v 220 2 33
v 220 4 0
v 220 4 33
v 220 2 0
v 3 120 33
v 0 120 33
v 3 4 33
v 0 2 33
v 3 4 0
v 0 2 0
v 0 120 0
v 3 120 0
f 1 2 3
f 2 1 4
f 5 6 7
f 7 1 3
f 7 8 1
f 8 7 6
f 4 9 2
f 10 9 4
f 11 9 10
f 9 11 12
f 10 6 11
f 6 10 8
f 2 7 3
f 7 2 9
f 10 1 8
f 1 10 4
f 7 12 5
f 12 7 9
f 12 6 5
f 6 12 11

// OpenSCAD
// file: nut.scad
// 1.5^2 + y^2 = 3^2
// sqrt(3^2 - 1.5^2)
//       30
//    /   |
// 60  - 90
// cos(30) = x / 3
// x = 3 cos(30)
module hex(side_length=3) {
  points = [[0,0], [side_length, 0], [side_length / 2, side_length * cos(30)]];
  for (i=[0:1:5]) {
    rotate([0,0,i * 60]) polygon(points);
  }
}

module hex_nut(side_length=3, height=2) {
    linear_extrude(height=height) hex(side_length);
}

module square_nut(side_length=5, height=2) {
    cube([5,5,2]);
}
// file: smoothed_corner.scad
$fn=200;
module smoothed_corner(radius=5) {
  difference() {
    sphere(radius);
    union() {
      translate([0,-5,-5]) {
        cube([5,10,10]);
      }

      translate([-10,0,-5]) {
        cube([10, 10, 10]);
      }

      translate([-5,-5,0]) {
        cube([10,10,10]);
      }
    }

  }
}

smoothed_corner();
// file: hex_nut.scad
// 1.5^2 + y^2 = 3^2
// sqrt(3^2 - 1.5^2)
//       30
//    /   |
// 60  - 90
// cos(30) = x / 3
// x = 3 cos(30)
module hex(side_length=4) {
  points = [[0,0], [side_length, 0], [side_length / 2, side_length * cos(30)]];
  for (i=[0:1:5]) {
    rotate([0,0,i * 60]) polygon(points);
  }
}

module hex_nut(side_length=3, height=2) {
    linear_extrude(height=height) hex(side_length);

}
// file: screw_with_nut.scad
use <screw.scad>
use <nut.scad>

module screw_with_nut(hex_nut_height=2.5, screw_head_height=3, threaded_height=10, threaded_radius=1.5, screw_head_radius=3, hex_nut_side_length=3, square_nut_height=2, square_nut_side_length=5, nut_type="hex") {
  screw(screw_head_radius=screw_head_radius, screw_head_height=screw_head_height, threaded_radius=threaded_radius, threaded_height=threaded_height);

  if (nut_type == "hex") {
    translate([0,0, screw_head_height + threaded_height - hex_nut_height]) {
      hex_nut(side_length=hex_nut_side_length, height=hex_nut_height);
    }
  }

  else if (nut_type == "square"){
    translate([
        -square_nut_side_length / 2,
        -square_nut_side_length / 2,
        screw_head_height + threaded_height - square_nut_height
    ]) {
      square_nut(side_length=square_nut_side_length, height=square_nut_height);
    }
  }

}

screw_with_nut(nut_type="square");
// file: fan.scad
use <hex_nut.scad>

module fan(radius, depth, distance_to_middle_of_circle_x, distance_to_middle_of_circle_y, screw_radius) {
  linear_extrude(height=depth) circle(radius);
  translate([distance_to_middle_of_circle_x, distance_to_middle_of_circle_y, 0]) {
    linear_extrude(height=depth) circle(screw_radius);
  }

  translate([-distance_to_middle_of_circle_x, -distance_to_middle_of_circle_y, 0]) {
    linear_extrude(height=depth) circle(screw_radius);
  }

  translate([distance_to_middle_of_circle_x, -distance_to_middle_of_circle_y, 0]) {
    linear_extrude(height=depth) circle(screw_radius);
  }

  translate([-distance_to_middle_of_circle_x, distance_to_middle_of_circle_y, 0]) {
    linear_extrude(height=depth) circle(screw_radius);
  }

  // hex nut 1
  translate([distance_to_middle_of_circle_x, distance_to_middle_of_circle_y, depth - 2]) {
    hex_nut(4);
  }

  // hex nut 2
  translate([-distance_to_middle_of_circle_x, -distance_to_middle_of_circle_y, depth - 2]) {
    hex_nut(4);
  }

  // hex nut 3
  translate([distance_to_middle_of_circle_x, -distance_to_middle_of_circle_y, depth - 2]) {
    hex_nut(4);
  }

  // hex nut 4
  translate([-distance_to_middle_of_circle_x, distance_to_middle_of_circle_y, depth - 2]) {
    hex_nut(4);
  }
}

fan(radius=60, depth=5, distance_to_middle_of_circle_x=62/70 * 60, distance_to_middle_of_circle_y=62/70 * 60);
// file: filler.scad
module filler(num_rows, num_cols, back_x, depth, back_y, filter_x, filter_y, filter_z, top_z) {

  if (num_rows == 1 && num_cols == 1) {
    difference() {
      translate([depth, depth, top_z - filter_z]) {
        cube([back_x - depth * 2, back_y - depth * 2, filter_z]);
      }

      translate([back_x / 2 - filter_x / 2, back_y / 2 - filter_y / 2, top_z - filter_z]) {
        cube([filter_x, filter_y, filter_z]);
      }
    }
  }

  if (num_rows == 1 && num_cols > 1){
    translate([depth, filter_y + depth, top_z - filter_z]) {
      cube([back_x - 2 * depth, back_y - 2 * depth - filter_y, filter_z]);
    }
  }
}

// filler(1, 1, 151, 5, 151, 110, 116, 44, 54.4);
// file: louver.scad
use <screw.scad>
$fn = 90;
module louver(filter_x, x_offset, cylinder_radius, distance_between_cylinders, casing_cylinder_length, with_holes=false) {
  difference() {
    difference() {

      rotate([90,0,0]) {
        rotate([0, 90, 0]) {

          // cylinder that attaches the louver to some structure
          translate([0, 0, x_offset]) {
            cylinder(h=casing_cylinder_length, r=cylinder_radius);
          }

          // cylinder that is meant to be attached to the direction synchronizer
          translate([0, distance_between_cylinders, x_offset * 1.5]) {
            cylinder(h=x_offset * 1.5, r=cylinder_radius);
          }

          // triangle
          translate([0, 0, x_offset * 3]) {
            rotate([0,0,90])
              linear_extrude(height=filter_x - 2 * x_offset) polygon(points=[[0,-2.5],[20 + distance_between_cylinders,0],[0, 2.5]]);
          }
        }
      }

      // remove extra of triangle
      translate([6,-5,20]) {
        cube([casing_cylinder_length,100,100]);
      }
    }

    if (with_holes) {
      translate([6,0, 15]) {
        rotate([0,90,0]) screw(threaded_height=6);
      }
    }
  }
}

depth = 5;
filter_x = 110;
top_z = 60;


louver(filter_x=filter_x, x_offset=depth, cylinder_radius=3, distance_between_cylinders=15, casing_cylinder_length=filter_x + depth * 2);
// file: shoulder_strap_support_screws.scad
use <screw_with_nut.scad>
module shoulder_strap_support_screws(wideness=15) {
  // left hole
  translate([wideness,0,5]) {
    color([1, 0, 0]) rotate([-90,0,0]) screw_with_nut(threaded_height=8);
  }

  // right hole
  translate([-wideness,0,5]) {
    color([1, 0, 0]) rotate([-90,0,0]) screw_with_nut(threaded_height=8);
  }
}
// file: shoulder_strap_half_ring.scad
use <screw_with_nut.scad>
use <smoothed_cube.scad>
use <shoulder_strap_support_screws.scad>

$fn = 200;

module screwable() {
    smoothed_cube(
      x=13,
      y=5,
      z=10,

      radius_1=2,
      radius_2=2,
      edge_1_2_radius=2,
      edge_2_6_radius=2,
      edge_1_5_radius=2,
      edge_4_1_radius=2,
      edge_2_3_radius=2,
      edge_3_4_radius=2,
      edge_3_7_radius=2,
      edge_4_8_radius=2,
      radius_3=2,
      radius_4=2
      // edge_4_1_radius=2,
    );
}

module to_remove(r) {
  cylinder(h=10, r=r-4);
  translate([-8,0,0]) {
    cube([16, 100, 100]);
  }
  translate([-25,5,0]) {
    cube([50, 50, 50]);
  }
}


module half_ring_without_holes(r=25.4) {
  difference() {
    // translate([0,2,5]) {
      // rotate([180,0,0])
        // rotate_extrude(convexity = 10, angle=180)
        // translate([10, 0, 0])
        // circle(r = 2, $fn = 100);

    // }
    translate([0,1,2]) {
      cylinder(h=6, r=r);
    }
    to_remove(r);

  }

  // left side support
  translate([8,0,0]) {
    screwable();
  }

  // right side support
  translate([-8,0,10]) {
    rotate([0,180,0])
    screwable();
  }
}

module shoulder_strap_half_ring() {
  difference() {
    half_ring_without_holes(r=12);
    shoulder_strap_support_screws(wideness=16);
  }
}


shoulder_strap_half_ring();


// to_remove();
// file: smoothed_edge.scad
module smoothed_edge(radius=1.5, height=64) {
  difference() {
    difference() {
      color([1, 0, 0]) cylinder(h=height, r=radius);
      translate([-radius, 0, 0]) {
        color([0, 1, 0]) cube([radius * 2, radius, height]);
      }
    }

    translate([0, -radius, 0]) {
      color([0, 1, 0]) cube([radius, radius * 2, height]);
    }
  }
}
// file: c_clamp_m.scad
use <top_screws_with_nuts.scad>
use <smoothed_edge.scad>
use <smoothed_cube.scad>

depth = 5;
$fn = 100;

module c_clamp_m_screws_and_nuts() {
  top_screws_with_nuts();
  translate([22.5, 0, 0]) {
    top_screws_with_nuts();
  }
}

module remove_from_left_cylinder() {
  // bottom half
  translate([-2.5, 0, 0]) {
    color([0, 1, 0]) cube([5,5,64]);
  }

  // top right corner
  translate([0, -2.5, 0]) {
    color([0, 1, 0]) cube([2.5,2.5,64]);
  }
}

module remove_from_right_cylinder() {
  // bottom half
  translate([-2.5, 0, 0]) {
    color([0, 1, 0]) cube([5,5,64]);
  }

  // top right corner
  translate([-2.5, -2.5, 0]) {
    color([0, 1, 0]) cube([2.5,2.5,64]);
  }
}


module c_clamp_m_without_holes() {
  // base
  translate([0,0,0]) {
    color([0,0,1]) smoothed_cube(
        x=36,
        y=3,
        z=64,
        radius_1=3,
        radius_2=3,
        radius_3=3,
        radius_4=3,
        edge_1_2_radius=3,
        edge_2_3_radius=3,
        edge_3_4_radius=3,
        edge_4_1_radius=3
    );
  }

  // mid
  translate([14,-3,2]) {
    color([1,0,0]) cube([8, 4, 61]);
  }

  // top
  translate([11.5,-7.5,0]) {
    color([0, 1,0]) smoothed_cube(
        x=13,
        y=5,
        z=64,
        radius_1=5,
        radius_2=5,
        radius_3=5,
        radius_4=5,
        edge_1_2_radius=5,
        edge_2_3_radius=5,
        edge_3_4_radius=5,
        edge_4_1_radius=5
    );
  }

  // stopper
  translate([11.5,-3,0]) {
    color([0,1,0])
      smoothed_cube(
        x=13,
        y=3,
        z=5,
        edge_2_6_radius=5,
        edge_3_7_radius=5
      );
  }
}

module c_clamp_m() {
  difference() {
    c_clamp_m_without_holes();
    translate([150, 135, -4]) {
      rotate([0,0,180]) c_clamp_m_screws_and_nuts();
    }
  }

  // translate([3,3,0]) {
    // smoothed_edge(radius=3);
  // }
  // translate([33,3,0]) {
    // rotate([0,0,90]) smoothed_edge(radius=3);
  // }

}



c_clamp_m();

// translate([14,-10,0]) {
// file: top_screws_with_nuts.scad
use <screw_with_nut.scad>
module top_screws_with_nuts(fan_radius=60, depth=5, height=50) {
  // top hole 1
  translate([fan_radius * 2, fan_radius * 2 + depth + 1, 2 * depth]) {
    rotate([-90,0,0]) color([0,0,1]) screw_with_nut(threaded_height=6);
  }

  // top hole 2
  translate([fan_radius * 2, fan_radius * 2 + depth + 1, height + depth ]) {
    rotate([-90,0,0]) color([0,1,0]) screw_with_nut(threaded_height=6);
  }
}


top_screws_with_nuts();
// file: main_no_side_holes.scad
use <filler.scad>;
use <fan.scad>;
use <louver.scad>
use <louvers.scad>
use <smoothed_cube.scad>

$fn = 100;

module main_no_side_holes(
  depth=5,
  filter_x=110,
  filter_y=116,
  fan_radius=60,
  top_z=60,
  screw_radius=2.5,
  screw_radius_holder=2.5,
  louver_holder=false,
  num_fans = 1,
  num_rows=1,
  num_cols=2,
  side_offset=0,
  radius_3=0,
  radius_7=0,
  edge_1_2_radius=0,
  edge_2_3_radius=0,
  edge_3_7_radius=0,
  edge_6_7_radius=0,
  edge_7_8_radius=0
) {
  distance_to_middle_of_circle_x = 62 / 70 * fan_radius;
  distance_to_middle_of_circle_y = distance_to_middle_of_circle_x;
  // Take the number of filters (rows and columns) into account
  depth_multiplier = num_fans == 2 ? 4 : 2;

  larger_x = num_fans > num_cols ? num_fans : num_cols;
  larger_y = num_fans > num_rows ? num_fans : num_rows;
  multiplier = num_rows == 2 ? filter_x : fan_radius;
  multiplier_x = num_cols == 2 ? filter_x : fan_radius * 2;
  back_x = larger_x * multiplier_x + depth * depth_multiplier + 1;
  back_y =  2 * multiplier + depth * depth_multiplier + 1;

  if (!louver_holder) {
    if (num_fans == 1) {
      // the back
      difference() {
        smoothed_cube(
            x=back_x,
            y=back_y,
            z=top_z,
            radius_3=radius_3,
            edge_1_2_radius=edge_1_2_radius,
            edge_3_7_radius=edge_3_7_radius,
            edge_2_3_radius=edge_2_3_radius,
            edge_3_4_radius=depth,
            edge_7_8_radius=edge_7_8_radius,
            edge_6_7_radius=edge_6_7_radius,
            radius_7=radius_7
        );
        union() {
          // centered in the middle
          translate([back_x / 2 , back_y / 2 , 0]) {
            fan(fan_radius, depth, distance_to_middle_of_circle_x, distance_to_middle_of_circle_y, screw_radius);
          }
          // add space
          translate([depth, depth, depth]) {
            cube([back_x - 2 * depth, back_y - 2 * depth, top_z - depth]);
          }
        }
      }
    }
    if (num_fans == 2) {
      // the back
      difference() {
        difference() {
          cube([back_x, back_y, depth]);

          // left
          translate([back_x / 4 , back_y / 2 , 0]) {
            fan(fan_radius, depth, distance_to_middle_of_circle_x, distance_to_middle_of_circle_y, screw_radius);
          }
        }

        // right
        translate([back_x * 3 / 4 , back_y / 2 , 0]) {
          fan(fan_radius, depth, distance_to_middle_of_circle_x, distance_to_middle_of_circle_y, screw_radius);
        }
      }
    }
  }
}

main_no_side_holes();
// file: one_filter_one_fan_main.scad
use <main_no_side_holes.scad>
use <top_screws_with_nuts.scad>

module remove() {
  translate([-10,0,0]) {
    top_screws_with_nuts();
  }
  translate([-100,0,0]) {
    top_screws_with_nuts();
  }
}


module one_filter_one_fan_main() {
  difference() {
    main_no_side_holes();
    remove();
  }
}

one_filter_one_fan_main();
// file: louvers.scad
use <louver.scad>

module louvers(num_louvers=7, depth=5, louver_separation=15, filter_x=110, cylinder_radius=3, distance_between_cylinders=15, casing_cylinder_length=110 + 10) {
  for (i=[0:1:num_louvers-1]) {
    translate([-depth, 2 * depth + i * louver_separation, depth]) {
      louver(
        filter_x=filter_x,
        x_offset=depth,
        cylinder_radius=cylinder_radius,
        distance_between_cylinders=distance_between_cylinders,
        casing_cylinder_length=casing_cylinder_length
      );
    }
  }
}

louvers();
// file: screw.scad
$fn=100;

module screw(screw_head_radius=3, screw_head_height=3, threaded_radius=1.5, threaded_height=10) {
  // screw head
  cylinder(h=screw_head_height, r=screw_head_radius);

  translate([0, 0, screw_head_height]) {
    cylinder(h=threaded_height, r=threaded_radius);
  }
}

// m3x10

screw(screw_head_radius=3, screw_head_height=3, threaded_radius=1.5, threaded_height=10);
// file: two_filter_one_fan_main.scad
use <one_filter_one_fan_main.scad>
use <main_no_side_holes.scad>
use <top_screws_with_nuts.scad>
use <c_clamp_m.scad>
use <smoothed_edge.scad>
use <shoulder_strap_half_ring.scad>
use <shoulder_strap_support_screws.scad>

$fn=200;
fan_radius = 60;
depth = 5;

module remove(fan_radius=60, depth=5, with_screws=true) {
  if (with_screws) {

    // 4 screws to casing
    translate([0,fan_radius * 2 - 4 * depth,0]) {
      main_to_casing_screws();
    }

    // c_clamp_m screws and nuts
    translate([0,fan_radius * 4 + 5 * depth + depth / 2,0]) {
      rotate([0,0,-90]) c_clamp_m_screws_and_nuts();
    }

    // shoulder strap screws
    translate([fan_radius * 2 - 3 * depth, -depth, depth]) {
      shoulder_strap_support_screws(wideness=16);
    }
  }
}


module two_filter_one_fan_main(with_screws=true) {
  difference() {
    main_no_side_holes(
        num_rows=2,
        num_cols=1,
        edge_1_2_radius=5
    );
    remove(with_screws=with_screws);
  }
}

two_filter_one_fan_main();
// file: louver_fan_casing.scad
use <louvers.scad>
use <screw.scad>
use <two_filter_one_fan_main.scad>

side_offset = 0.75;
depth = 5;
screwable_depth = depth - 1.5;
fan_radius = 60;
// x = 0;
threaded_height = 6;
filter_x = 110;
filter_y = 116;
filter_z = 44;
louver_holder_z = 10;
z = louver_holder_z / 2 + filter_z;

square_nut_height = z + threaded_height - 0.75;
screw_offset = 2.5;

diff_x = (fan_radius * 2 - filter_x) / 2;
diff_y = (fan_radius * 2 - filter_y);


module filter_casing_one_filter(filter_width=110, fan_radius=60) {
  bottom_x = fan_radius * 2;
  bottom_y = (fan_radius * 2 - filter_y);

  width_per_left_right_side = diff_x;

  // left filter holder side
  cube([width_per_left_right_side, (fan_radius * 2), z]);

  x_offset = diff_x + filter_x;

  // right filter holder side
  translate([x_offset, 0, 0]) {
    cube([width_per_left_right_side, (fan_radius * 2), z]);
  }

  // bottom
  cube([bottom_x, bottom_y, z]);
}




module filter_casing_enclosure_one_filter() {
  difference() {
    filter_casing_one_filter();
    // subtract louvers
    translate([0, depth + depth / 4, filter_z]) {
      louvers();
    }
  }

  // louver canopy
  difference() {

    translate([0, 0, -1 * depth]) {
      difference() {
        translate([-depth, -depth, z]) {
          cube([2 * depth + 2 * fan_radius, 2 * depth + 2 * fan_radius, depth]);
        }


        translate([0, 0, z]) {
          cube([2 * fan_radius, 2 * fan_radius, depth]);
        }
      }
    }
  }
}


module holes() {
  // bottom-left square hole
    translate([-screw_offset,-screw_offset,square_nut_height]) {
      rotate([180,0,0]) color([1,0,0]) screw(threaded_height=threaded_height);
    }

    // bottom-right square hole
    translate([+screw_offset + fan_radius * 2,-screw_offset,square_nut_height]) {
      rotate([180,0,0]) color([1,0,0]) screw(threaded_height=threaded_height);
    }

    // top-right square hole
    translate([+screw_offset + fan_radius * 2, +screw_offset + 2 * fan_radius, square_nut_height]) {
      rotate([180,0,0]) color([1,0,0]) screw(threaded_height=threaded_height);
    }

    // top-left square hole
  translate([-side_offset - 2, 4 * side_offset + 2 * fan_radius, square_nut_height]) {
    rotate([180,0,0]) color([1,0,0]) screw(threaded_height=threaded_height);
  }
}


module filter_casing_with_holes() {
  difference() {
    filter_casing_enclosure_one_filter();
    holes();
  }
}


// filter_casing_with_holes();
// filter_casing_one_filter();
// filter_casing_two_filter();
// translate([x,y,z]) {


filter_casing_enclosure_one_filter();
    // translate([0,0,depth * 8 + depth / 2 + depth / 4]) {
      // louvers(filter_x=110 * 2 - 2 * depth, casing_cylinder_length=110 * 2, depth=5, louver_separation=20, num_louvers=6);
    // }
// file: two_filter_casing_enclosure.scad
use <louver_fan_casing.scad>
use <two_filter_one_fan_main.scad>
use <screw.scad>
use <louvers.scad>

module filter_casing_two_filter(filter_width=110, fan_radius=60, filter_y=116, filter_z=44, louver_holder_z=10) {
  z = louver_holder_z / 2 + filter_z;
  bottom_x = filter_width * 2;
  bottom_y = (fan_radius * 2 - filter_y) / 2;

  // top
  translate([0, fan_radius * 2 - bottom_y + 1, 0]) {
    cube([bottom_x, bottom_y, z]);
  }

  // bottom
  cube([bottom_x, bottom_y, z]);
}

module two_filter_holes_left_side(screw_offset=2.5, depth=5, threaded_height=6) {
  // bottom-left square hole
  translate([-screw_offset + depth / 3 ,-screw_offset + depth * 4.5, depth * 8 + 4]) {
    color([1,0,0]) screw(threaded_height=threaded_height);
  }

  // top-left square hole
  translate([-screw_offset + depth / 3 ,-screw_offset + depth * 20.5, depth * 8 + 4]) {
    color([1,0,0]) screw(threaded_height=threaded_height);
  }
}

module two_filter_holes(filter_x=110) {
  two_filter_holes_left_side();
  translate([filter_x * 2, 0, 0]) {
    two_filter_holes_left_side();
  }
}


module two_filter_casing_enclosure(
  depth=5,
  filter_x=110,
  filter_z=44,
  fan_radius=60,
  louver_holder_z=10,
  top_bottom=true,
  louver_offset=0,
  filter_holes_offset=0,
) {
  z = louver_holder_z / 2 + filter_z;

  difference() {
    union() {
      union() {
        if (top_bottom) {
          filter_casing_two_filter();
        }
        translate([depth + filter_x * 2,-depth, -depth * 2]) {
          rotate([0,0,90]) translate([0,0,z]) {
            // get a slice of the main casing
            difference() {
              two_filter_one_fan_main(with_screws=false);
              union() {
                cube([400,400,5]);
                translate([0,0,10]) {
                    cube([400,400,100]);
                }
              }
            }
          }
        }
      }

      difference() {
        union() {
            // reinforce left side
            translate([-1,0,z - depth]) {
              color([1,0,0]) cube([depth,fan_radius * 2 + depth,depth]);
            }
            // reinforce right side
            translate([filter_x * 2 - depth,0,z - depth]) {
              color([1,0,0]) cube([depth,fan_radius * 2 + depth,depth]);
            }
        }
        // subtract louvers
        translate([0,0,depth * 8 + depth / 2 + louver_offset]) {
          louvers(filter_x=110 * 2 - 2 * depth, casing_cylinder_length=110 * 2, depth=5, louver_separation=20, num_louvers=6);
        }
      }
    }

    translate([0, 0, filter_holes_offset]) {
      two_filter_holes();
    }
  }
}

two_filter_casing_enclosure();
// main file
use <two_filter_casing_enclosure.scad>
module epa_long(bottom_x=110 * 2, bottom_y=(60 * 2 - 116) / 2, z=33) {
  cube([bottom_x, bottom_y, z]);
  cube([3, 120 - 2, z]);
}

translate([0,2,0]) {
  color([1,0,0]) epa_long();

}

// two_filter_casing_enclosure();
